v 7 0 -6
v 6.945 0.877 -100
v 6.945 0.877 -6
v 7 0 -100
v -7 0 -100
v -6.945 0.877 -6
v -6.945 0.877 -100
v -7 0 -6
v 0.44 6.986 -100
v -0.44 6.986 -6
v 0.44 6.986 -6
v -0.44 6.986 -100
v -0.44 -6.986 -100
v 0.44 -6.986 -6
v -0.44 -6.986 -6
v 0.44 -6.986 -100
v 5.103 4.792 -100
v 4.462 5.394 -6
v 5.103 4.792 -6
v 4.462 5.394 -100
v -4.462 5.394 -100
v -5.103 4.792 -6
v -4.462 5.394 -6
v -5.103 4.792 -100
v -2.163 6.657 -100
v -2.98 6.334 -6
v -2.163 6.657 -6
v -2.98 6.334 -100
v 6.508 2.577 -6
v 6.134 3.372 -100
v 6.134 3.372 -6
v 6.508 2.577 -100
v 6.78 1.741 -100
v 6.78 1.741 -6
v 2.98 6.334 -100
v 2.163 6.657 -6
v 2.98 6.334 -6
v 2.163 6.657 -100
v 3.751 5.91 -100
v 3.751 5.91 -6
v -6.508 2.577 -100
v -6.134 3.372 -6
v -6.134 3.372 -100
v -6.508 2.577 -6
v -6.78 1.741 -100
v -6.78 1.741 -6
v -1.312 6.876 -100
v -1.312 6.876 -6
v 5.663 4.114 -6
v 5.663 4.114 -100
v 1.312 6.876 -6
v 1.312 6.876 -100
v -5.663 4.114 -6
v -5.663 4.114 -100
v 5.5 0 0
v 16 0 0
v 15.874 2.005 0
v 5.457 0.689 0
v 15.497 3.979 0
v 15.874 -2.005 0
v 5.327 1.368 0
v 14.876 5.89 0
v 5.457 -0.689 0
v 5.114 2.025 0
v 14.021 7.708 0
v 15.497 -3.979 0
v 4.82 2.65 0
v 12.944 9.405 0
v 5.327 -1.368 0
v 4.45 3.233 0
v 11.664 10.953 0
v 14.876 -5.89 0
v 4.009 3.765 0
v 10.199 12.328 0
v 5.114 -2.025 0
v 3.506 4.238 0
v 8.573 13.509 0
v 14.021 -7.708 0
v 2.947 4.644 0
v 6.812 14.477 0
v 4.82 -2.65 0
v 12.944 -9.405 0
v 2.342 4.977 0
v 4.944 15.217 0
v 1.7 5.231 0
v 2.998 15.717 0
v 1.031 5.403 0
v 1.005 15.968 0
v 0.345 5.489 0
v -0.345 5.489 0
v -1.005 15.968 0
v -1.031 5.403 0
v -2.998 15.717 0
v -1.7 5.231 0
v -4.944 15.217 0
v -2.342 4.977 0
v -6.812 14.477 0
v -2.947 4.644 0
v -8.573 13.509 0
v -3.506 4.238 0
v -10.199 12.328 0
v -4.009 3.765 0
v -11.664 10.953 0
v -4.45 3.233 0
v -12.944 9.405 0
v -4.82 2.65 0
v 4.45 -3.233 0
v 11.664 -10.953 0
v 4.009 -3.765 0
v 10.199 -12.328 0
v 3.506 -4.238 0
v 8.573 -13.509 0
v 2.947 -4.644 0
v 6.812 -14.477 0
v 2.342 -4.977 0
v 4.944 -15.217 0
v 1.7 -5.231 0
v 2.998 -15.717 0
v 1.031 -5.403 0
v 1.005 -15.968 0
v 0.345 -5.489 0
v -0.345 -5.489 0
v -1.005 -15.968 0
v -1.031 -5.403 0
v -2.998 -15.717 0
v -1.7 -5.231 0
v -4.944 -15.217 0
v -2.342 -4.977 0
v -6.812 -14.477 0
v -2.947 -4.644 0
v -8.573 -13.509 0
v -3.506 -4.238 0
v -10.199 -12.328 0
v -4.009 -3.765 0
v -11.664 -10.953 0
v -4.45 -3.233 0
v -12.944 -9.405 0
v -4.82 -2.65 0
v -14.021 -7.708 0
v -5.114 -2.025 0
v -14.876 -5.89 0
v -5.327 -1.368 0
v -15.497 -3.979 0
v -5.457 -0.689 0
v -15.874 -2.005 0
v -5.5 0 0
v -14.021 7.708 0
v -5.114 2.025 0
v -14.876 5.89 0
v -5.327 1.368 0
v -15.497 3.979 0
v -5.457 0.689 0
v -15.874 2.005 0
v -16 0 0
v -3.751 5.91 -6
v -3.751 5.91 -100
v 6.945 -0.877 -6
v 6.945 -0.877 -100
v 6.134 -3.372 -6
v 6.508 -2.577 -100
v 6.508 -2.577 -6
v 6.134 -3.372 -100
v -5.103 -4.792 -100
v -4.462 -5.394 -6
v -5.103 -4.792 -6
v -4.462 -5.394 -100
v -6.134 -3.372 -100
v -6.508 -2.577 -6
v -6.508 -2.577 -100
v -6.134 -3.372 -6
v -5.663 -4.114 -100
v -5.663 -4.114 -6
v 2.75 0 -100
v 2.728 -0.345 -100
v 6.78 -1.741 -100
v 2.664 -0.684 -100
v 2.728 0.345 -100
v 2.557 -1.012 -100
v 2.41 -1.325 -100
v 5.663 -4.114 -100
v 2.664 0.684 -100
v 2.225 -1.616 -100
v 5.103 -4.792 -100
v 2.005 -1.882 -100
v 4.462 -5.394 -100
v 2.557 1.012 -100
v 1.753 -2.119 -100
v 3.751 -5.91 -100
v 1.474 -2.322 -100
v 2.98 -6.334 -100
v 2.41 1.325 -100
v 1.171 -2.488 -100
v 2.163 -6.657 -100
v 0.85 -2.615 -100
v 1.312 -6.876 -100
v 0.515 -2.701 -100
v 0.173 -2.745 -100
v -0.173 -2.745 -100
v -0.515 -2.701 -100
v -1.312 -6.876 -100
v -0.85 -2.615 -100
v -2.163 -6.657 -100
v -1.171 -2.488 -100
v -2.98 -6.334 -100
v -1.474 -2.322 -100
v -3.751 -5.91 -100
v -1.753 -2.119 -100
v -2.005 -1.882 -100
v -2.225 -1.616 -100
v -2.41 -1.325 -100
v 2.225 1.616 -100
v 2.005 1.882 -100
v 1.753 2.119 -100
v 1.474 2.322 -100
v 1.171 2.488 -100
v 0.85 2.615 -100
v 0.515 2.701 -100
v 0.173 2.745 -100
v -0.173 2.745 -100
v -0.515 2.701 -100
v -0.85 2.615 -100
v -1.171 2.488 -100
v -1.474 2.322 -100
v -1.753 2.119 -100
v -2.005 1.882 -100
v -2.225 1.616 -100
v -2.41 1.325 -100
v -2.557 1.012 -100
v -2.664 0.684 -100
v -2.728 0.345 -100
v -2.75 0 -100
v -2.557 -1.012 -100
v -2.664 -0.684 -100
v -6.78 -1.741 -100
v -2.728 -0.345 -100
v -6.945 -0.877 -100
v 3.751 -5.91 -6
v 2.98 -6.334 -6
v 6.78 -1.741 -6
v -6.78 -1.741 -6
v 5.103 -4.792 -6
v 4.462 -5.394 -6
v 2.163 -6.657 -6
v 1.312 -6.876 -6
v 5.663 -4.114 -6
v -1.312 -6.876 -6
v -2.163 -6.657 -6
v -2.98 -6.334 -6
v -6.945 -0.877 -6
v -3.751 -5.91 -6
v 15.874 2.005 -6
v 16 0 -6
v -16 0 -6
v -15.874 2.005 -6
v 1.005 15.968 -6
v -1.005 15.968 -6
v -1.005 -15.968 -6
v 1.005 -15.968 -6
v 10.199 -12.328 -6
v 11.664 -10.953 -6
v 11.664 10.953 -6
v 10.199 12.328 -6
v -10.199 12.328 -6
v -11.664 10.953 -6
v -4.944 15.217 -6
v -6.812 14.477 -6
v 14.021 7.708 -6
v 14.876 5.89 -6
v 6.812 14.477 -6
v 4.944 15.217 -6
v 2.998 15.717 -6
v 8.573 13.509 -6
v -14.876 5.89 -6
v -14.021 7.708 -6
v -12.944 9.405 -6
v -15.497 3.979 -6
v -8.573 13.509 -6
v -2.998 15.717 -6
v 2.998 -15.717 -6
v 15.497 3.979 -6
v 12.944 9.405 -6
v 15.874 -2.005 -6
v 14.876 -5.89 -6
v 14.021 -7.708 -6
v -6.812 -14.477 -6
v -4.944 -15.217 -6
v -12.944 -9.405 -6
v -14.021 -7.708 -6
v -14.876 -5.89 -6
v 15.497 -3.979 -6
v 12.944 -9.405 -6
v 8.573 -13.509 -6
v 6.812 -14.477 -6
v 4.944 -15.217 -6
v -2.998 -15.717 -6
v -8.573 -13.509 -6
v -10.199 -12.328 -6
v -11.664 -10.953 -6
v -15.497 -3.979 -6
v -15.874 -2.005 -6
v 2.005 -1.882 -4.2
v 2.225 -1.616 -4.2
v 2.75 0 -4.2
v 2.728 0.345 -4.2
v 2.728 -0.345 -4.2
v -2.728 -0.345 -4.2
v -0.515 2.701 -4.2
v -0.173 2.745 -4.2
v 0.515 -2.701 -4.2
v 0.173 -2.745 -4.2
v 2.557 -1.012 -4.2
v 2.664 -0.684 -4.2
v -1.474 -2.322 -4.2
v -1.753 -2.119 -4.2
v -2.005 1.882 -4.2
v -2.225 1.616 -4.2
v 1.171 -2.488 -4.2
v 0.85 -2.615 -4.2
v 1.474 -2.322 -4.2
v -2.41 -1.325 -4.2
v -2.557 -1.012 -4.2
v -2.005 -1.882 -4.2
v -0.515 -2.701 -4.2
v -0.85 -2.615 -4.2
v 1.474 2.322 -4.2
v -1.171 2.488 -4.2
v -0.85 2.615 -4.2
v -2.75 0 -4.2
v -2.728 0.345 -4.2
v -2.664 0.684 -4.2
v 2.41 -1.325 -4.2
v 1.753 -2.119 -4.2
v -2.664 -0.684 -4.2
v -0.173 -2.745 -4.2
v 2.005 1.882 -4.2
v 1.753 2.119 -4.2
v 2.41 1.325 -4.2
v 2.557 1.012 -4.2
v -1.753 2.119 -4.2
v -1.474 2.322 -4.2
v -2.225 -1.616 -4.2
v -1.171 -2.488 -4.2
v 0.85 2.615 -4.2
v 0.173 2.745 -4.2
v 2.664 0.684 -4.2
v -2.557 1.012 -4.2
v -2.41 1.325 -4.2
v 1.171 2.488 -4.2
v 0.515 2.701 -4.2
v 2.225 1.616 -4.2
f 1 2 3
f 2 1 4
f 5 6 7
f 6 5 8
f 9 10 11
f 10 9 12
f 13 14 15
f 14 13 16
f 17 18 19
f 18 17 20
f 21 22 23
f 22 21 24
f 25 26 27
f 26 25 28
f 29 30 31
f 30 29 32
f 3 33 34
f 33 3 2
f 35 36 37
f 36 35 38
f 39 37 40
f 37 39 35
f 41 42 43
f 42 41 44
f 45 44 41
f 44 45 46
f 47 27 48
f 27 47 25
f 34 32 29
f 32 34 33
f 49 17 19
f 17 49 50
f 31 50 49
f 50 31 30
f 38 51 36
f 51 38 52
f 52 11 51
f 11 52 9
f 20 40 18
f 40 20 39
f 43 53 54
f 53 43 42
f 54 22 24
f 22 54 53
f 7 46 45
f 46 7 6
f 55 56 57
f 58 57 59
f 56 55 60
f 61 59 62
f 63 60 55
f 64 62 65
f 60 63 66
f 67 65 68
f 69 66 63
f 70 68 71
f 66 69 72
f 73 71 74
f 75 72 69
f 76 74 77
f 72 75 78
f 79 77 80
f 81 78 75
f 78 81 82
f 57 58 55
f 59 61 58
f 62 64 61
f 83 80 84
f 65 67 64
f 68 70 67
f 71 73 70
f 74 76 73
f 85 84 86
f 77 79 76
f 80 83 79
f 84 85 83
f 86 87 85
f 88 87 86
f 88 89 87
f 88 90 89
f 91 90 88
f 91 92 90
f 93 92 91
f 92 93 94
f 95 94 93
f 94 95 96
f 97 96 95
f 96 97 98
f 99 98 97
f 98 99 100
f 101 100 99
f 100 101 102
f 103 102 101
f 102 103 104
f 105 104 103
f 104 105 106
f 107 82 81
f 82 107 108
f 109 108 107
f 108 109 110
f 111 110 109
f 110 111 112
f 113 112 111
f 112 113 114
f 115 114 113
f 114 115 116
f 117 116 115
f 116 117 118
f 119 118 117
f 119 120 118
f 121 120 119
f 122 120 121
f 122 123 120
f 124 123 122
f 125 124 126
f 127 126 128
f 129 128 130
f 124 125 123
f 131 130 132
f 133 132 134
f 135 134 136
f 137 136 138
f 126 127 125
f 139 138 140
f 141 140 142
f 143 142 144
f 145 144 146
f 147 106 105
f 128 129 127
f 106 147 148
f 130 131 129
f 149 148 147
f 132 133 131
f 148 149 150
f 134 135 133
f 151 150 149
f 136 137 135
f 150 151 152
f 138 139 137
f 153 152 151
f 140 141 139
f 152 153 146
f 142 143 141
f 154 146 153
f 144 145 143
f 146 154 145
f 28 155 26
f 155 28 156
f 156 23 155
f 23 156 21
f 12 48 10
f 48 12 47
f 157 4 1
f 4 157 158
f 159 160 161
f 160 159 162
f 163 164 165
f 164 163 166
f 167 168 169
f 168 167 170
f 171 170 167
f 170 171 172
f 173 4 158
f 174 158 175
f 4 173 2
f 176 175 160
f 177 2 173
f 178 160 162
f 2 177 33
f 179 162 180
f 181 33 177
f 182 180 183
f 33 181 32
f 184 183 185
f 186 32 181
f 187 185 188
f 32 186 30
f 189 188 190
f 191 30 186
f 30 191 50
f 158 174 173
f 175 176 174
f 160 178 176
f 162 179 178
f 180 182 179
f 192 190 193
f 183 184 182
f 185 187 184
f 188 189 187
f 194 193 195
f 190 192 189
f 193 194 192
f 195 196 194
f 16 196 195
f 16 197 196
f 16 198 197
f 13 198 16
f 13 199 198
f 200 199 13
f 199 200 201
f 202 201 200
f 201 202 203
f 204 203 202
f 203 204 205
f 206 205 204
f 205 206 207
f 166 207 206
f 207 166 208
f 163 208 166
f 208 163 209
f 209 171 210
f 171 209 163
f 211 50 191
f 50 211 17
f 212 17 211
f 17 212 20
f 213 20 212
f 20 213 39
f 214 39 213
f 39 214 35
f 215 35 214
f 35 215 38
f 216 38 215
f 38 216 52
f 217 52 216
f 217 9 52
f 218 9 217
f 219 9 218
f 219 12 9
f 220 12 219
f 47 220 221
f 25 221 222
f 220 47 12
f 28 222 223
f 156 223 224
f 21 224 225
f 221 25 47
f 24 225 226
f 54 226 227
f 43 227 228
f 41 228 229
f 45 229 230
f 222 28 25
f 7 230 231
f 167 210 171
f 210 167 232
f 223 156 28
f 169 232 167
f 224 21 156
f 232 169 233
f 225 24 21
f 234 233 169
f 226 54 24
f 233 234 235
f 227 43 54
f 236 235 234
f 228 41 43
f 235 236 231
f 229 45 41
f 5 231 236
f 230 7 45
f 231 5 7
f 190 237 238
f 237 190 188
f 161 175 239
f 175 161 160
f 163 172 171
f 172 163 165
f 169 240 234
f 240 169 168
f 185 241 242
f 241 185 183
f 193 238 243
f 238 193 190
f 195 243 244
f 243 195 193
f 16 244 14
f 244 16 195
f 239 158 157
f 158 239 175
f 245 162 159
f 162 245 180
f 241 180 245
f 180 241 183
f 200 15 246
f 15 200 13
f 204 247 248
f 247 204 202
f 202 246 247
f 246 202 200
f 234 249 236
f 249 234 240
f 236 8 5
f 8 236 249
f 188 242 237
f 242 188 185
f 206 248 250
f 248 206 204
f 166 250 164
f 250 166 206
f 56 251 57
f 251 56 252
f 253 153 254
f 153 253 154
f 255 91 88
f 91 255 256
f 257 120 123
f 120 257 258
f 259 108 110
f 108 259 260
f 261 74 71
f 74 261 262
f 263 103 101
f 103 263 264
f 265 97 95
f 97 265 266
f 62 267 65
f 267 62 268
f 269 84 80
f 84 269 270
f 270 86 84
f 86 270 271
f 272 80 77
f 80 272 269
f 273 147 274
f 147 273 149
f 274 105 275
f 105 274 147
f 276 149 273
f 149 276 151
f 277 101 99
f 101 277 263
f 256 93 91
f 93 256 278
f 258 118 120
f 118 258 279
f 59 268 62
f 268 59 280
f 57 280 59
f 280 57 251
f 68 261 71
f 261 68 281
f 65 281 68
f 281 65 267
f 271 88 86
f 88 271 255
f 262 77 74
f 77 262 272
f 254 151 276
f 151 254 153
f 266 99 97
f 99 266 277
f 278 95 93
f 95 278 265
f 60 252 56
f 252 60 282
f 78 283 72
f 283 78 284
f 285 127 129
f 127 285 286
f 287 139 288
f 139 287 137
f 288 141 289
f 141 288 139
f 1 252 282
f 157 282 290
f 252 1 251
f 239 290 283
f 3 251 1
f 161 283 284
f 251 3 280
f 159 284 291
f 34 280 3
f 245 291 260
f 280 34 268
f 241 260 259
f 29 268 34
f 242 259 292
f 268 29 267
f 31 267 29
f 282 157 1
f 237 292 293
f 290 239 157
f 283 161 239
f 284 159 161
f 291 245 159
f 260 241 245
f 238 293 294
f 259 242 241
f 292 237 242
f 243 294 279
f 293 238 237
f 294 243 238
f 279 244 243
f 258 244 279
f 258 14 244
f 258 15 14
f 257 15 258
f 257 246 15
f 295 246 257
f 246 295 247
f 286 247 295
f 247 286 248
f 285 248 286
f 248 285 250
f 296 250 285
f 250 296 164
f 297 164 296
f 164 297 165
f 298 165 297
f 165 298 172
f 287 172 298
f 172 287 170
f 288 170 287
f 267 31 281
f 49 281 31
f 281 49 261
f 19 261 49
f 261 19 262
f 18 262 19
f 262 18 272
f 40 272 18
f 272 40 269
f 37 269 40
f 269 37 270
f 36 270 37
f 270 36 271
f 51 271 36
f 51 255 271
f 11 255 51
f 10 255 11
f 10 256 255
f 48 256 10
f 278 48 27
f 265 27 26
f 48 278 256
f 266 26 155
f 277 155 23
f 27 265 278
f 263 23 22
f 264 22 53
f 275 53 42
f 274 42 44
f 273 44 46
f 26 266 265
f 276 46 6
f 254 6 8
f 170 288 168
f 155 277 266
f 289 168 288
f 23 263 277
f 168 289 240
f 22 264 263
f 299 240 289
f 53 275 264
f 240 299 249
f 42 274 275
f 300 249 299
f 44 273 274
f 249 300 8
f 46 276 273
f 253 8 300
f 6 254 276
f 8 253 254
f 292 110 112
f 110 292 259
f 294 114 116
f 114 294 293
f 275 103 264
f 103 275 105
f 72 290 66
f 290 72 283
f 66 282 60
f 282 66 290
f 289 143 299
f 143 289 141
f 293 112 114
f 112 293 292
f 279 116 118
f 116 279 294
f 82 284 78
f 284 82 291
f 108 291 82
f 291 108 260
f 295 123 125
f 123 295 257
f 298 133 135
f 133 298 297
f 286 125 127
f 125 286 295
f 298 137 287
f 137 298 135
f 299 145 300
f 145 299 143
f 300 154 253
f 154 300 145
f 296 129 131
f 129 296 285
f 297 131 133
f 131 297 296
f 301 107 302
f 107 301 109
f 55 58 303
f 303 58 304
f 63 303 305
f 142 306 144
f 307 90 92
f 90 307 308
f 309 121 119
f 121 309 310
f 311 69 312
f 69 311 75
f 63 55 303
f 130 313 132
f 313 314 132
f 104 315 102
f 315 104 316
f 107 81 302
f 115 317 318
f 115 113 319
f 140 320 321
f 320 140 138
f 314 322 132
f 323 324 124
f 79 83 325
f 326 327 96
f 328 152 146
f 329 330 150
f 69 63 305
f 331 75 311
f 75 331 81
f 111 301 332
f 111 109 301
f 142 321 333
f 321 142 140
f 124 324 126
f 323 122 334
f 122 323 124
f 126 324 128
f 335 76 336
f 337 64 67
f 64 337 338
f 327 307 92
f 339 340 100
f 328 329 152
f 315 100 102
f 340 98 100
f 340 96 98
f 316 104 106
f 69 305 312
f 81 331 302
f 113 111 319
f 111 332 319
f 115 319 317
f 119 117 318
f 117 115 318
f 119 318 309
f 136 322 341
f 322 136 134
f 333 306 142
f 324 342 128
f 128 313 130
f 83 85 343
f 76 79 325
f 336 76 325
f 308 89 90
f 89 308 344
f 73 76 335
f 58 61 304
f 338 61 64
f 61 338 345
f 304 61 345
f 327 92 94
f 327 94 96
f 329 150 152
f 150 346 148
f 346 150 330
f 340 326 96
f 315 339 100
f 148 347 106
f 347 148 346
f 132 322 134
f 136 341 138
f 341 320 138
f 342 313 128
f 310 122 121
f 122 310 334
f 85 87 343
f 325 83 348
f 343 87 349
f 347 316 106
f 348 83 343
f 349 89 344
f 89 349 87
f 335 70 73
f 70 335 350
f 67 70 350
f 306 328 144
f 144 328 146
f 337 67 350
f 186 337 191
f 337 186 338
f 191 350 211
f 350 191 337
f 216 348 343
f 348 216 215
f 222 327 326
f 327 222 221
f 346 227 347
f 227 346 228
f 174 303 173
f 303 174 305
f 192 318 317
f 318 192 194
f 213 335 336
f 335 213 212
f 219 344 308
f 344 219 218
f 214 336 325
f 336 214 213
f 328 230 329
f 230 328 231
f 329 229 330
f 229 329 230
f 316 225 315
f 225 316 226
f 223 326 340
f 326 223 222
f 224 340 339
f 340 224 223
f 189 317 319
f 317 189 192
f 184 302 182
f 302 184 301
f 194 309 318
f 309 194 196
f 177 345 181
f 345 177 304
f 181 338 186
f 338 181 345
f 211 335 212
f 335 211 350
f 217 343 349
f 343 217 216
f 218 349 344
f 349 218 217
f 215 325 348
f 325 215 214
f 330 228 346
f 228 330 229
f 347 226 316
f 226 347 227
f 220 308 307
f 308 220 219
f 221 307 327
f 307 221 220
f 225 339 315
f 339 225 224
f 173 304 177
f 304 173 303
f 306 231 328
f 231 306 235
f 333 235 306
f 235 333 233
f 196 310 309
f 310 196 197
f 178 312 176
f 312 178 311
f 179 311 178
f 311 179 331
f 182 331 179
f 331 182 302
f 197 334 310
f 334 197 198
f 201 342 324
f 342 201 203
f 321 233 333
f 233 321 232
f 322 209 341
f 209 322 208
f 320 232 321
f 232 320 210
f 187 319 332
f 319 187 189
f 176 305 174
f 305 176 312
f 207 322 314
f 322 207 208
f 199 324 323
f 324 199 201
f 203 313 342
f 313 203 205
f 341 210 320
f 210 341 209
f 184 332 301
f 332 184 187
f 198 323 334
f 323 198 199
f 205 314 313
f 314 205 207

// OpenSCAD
$fn = 50;


difference() {
	union() {
		translate(v = [0, 0, -100.0000000000]) {
			cylinder(h = 100, r = 7.0000000000);
		}
		translate(v = [0, 0, -6.0000000000]) {
			cylinder(h = 6, r = 16.0000000000);
		}
	}
	union() {
		translate(v = [0, 0, 0]) {
			rotate(a = [0, 0, 0]) {
				difference() {
					union() {
						#translate(v = [0, 0, -100.0000000000]) {
							cylinder(h = 100, r = 2.2500000000);
						}
						#translate(v = [0, 0, -4.2000000000]) {
							cylinder(h = 4.2000000000, r1 = 2.7500000000, r2 = 5.5000000000);
						}
						#translate(v = [0, 0, -100.0000000000]) {
							cylinder(h = 100, r = 2.7500000000);
						}
						#translate(v = [0, 0, -100.0000000000]) {
							cylinder(h = 100, r = 2.2500000000);
						}
					}
					union();
				}
			}
		}
	}
}
